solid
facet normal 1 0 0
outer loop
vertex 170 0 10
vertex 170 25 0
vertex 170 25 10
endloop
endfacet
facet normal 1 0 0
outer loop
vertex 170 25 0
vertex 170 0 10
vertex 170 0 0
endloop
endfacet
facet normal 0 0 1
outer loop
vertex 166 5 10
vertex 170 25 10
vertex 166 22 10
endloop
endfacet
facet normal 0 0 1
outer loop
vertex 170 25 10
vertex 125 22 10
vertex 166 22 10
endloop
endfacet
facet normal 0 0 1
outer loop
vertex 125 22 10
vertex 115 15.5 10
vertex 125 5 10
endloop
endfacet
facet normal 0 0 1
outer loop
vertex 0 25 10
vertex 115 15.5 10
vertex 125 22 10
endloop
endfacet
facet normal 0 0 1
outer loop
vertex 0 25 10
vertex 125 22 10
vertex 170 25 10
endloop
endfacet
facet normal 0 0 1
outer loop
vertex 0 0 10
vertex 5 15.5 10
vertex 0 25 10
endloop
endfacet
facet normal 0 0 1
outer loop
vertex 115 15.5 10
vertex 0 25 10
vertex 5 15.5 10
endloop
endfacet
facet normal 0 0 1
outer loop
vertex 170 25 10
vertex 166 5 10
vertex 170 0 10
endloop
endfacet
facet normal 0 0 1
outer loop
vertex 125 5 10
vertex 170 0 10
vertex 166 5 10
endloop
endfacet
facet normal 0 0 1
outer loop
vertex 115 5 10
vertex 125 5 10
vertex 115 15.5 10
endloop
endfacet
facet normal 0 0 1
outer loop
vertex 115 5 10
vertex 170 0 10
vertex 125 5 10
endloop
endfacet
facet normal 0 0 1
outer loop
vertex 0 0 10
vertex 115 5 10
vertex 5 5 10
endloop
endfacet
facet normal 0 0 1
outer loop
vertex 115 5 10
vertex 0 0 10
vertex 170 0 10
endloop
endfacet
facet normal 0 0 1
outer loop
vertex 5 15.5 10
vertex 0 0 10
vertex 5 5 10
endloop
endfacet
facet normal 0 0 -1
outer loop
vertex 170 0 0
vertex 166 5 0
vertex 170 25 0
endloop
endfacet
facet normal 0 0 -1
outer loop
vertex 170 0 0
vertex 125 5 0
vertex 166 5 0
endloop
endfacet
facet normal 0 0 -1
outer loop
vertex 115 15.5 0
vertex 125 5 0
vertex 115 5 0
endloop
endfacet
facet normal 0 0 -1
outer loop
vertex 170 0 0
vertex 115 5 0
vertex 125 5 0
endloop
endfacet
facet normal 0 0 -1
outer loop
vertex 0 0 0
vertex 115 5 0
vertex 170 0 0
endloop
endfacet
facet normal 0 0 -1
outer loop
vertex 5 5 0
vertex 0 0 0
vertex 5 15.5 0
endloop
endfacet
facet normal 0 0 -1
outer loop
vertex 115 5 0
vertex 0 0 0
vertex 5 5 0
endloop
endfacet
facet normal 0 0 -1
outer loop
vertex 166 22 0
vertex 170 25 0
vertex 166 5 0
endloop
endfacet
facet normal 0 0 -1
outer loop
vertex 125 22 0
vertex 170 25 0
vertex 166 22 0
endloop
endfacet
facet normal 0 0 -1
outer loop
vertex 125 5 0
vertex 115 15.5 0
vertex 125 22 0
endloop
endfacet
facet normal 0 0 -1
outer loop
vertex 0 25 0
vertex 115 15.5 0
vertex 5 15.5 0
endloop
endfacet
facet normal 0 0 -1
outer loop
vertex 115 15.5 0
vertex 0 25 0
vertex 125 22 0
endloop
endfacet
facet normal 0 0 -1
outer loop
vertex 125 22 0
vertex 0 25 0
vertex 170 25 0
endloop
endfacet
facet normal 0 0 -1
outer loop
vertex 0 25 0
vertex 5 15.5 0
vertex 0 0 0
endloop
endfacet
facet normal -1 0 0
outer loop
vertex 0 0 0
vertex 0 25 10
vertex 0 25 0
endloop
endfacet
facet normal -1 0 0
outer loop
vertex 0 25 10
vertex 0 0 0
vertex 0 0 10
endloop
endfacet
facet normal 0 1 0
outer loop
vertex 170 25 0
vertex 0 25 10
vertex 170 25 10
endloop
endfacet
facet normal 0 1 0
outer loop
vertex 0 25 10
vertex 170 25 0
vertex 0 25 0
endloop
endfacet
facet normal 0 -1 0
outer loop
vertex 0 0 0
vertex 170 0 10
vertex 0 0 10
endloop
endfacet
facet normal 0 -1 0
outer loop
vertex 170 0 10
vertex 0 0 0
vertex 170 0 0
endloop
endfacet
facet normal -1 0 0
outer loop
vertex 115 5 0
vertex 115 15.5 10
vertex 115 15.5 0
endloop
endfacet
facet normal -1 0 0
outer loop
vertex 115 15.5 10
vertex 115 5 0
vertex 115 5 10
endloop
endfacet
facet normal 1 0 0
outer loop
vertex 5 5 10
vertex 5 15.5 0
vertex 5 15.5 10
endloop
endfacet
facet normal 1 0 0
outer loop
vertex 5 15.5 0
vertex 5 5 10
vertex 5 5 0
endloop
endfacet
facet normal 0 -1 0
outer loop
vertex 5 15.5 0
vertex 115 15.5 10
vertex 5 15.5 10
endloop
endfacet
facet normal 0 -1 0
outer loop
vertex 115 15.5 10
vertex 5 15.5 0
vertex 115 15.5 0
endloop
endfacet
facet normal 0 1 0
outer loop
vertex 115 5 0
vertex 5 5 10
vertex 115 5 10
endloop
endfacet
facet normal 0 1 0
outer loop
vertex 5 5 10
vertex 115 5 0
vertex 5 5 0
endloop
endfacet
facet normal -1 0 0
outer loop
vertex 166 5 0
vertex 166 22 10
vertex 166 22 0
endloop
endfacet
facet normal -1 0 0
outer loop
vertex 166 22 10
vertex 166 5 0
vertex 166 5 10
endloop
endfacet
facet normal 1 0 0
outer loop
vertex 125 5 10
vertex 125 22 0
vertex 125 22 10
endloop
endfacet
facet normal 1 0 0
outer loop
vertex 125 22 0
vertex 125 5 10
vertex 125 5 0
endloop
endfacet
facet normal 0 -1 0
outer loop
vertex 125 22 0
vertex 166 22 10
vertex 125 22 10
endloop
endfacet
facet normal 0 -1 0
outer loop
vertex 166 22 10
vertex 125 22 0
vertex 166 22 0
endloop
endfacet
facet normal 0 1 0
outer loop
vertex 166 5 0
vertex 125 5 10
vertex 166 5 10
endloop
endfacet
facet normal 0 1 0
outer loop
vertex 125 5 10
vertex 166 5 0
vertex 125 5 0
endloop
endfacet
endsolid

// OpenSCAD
//
// ktRACK65
//
//

gap1 = 0.002;
gap2 = 0.004;
th = 2;




difference()
{
    union()
    {
        translate([0, 0, 0]) cube([170, 25, 10]);
    }
    #translate([5, 5, 0]) XI();
    #translate([125, 5, 0]) M5();

}



module XI()
{
difference()
{
    union()
    {
        translate([0, 0, 0]) cube([110, 10+0.5, 55]);
    }
}
}

module M5()
{
difference()
{
    union()
    {
        translate([0, 0, 0]) cube([40+1, 16+1, 56]);
    }
}
}
